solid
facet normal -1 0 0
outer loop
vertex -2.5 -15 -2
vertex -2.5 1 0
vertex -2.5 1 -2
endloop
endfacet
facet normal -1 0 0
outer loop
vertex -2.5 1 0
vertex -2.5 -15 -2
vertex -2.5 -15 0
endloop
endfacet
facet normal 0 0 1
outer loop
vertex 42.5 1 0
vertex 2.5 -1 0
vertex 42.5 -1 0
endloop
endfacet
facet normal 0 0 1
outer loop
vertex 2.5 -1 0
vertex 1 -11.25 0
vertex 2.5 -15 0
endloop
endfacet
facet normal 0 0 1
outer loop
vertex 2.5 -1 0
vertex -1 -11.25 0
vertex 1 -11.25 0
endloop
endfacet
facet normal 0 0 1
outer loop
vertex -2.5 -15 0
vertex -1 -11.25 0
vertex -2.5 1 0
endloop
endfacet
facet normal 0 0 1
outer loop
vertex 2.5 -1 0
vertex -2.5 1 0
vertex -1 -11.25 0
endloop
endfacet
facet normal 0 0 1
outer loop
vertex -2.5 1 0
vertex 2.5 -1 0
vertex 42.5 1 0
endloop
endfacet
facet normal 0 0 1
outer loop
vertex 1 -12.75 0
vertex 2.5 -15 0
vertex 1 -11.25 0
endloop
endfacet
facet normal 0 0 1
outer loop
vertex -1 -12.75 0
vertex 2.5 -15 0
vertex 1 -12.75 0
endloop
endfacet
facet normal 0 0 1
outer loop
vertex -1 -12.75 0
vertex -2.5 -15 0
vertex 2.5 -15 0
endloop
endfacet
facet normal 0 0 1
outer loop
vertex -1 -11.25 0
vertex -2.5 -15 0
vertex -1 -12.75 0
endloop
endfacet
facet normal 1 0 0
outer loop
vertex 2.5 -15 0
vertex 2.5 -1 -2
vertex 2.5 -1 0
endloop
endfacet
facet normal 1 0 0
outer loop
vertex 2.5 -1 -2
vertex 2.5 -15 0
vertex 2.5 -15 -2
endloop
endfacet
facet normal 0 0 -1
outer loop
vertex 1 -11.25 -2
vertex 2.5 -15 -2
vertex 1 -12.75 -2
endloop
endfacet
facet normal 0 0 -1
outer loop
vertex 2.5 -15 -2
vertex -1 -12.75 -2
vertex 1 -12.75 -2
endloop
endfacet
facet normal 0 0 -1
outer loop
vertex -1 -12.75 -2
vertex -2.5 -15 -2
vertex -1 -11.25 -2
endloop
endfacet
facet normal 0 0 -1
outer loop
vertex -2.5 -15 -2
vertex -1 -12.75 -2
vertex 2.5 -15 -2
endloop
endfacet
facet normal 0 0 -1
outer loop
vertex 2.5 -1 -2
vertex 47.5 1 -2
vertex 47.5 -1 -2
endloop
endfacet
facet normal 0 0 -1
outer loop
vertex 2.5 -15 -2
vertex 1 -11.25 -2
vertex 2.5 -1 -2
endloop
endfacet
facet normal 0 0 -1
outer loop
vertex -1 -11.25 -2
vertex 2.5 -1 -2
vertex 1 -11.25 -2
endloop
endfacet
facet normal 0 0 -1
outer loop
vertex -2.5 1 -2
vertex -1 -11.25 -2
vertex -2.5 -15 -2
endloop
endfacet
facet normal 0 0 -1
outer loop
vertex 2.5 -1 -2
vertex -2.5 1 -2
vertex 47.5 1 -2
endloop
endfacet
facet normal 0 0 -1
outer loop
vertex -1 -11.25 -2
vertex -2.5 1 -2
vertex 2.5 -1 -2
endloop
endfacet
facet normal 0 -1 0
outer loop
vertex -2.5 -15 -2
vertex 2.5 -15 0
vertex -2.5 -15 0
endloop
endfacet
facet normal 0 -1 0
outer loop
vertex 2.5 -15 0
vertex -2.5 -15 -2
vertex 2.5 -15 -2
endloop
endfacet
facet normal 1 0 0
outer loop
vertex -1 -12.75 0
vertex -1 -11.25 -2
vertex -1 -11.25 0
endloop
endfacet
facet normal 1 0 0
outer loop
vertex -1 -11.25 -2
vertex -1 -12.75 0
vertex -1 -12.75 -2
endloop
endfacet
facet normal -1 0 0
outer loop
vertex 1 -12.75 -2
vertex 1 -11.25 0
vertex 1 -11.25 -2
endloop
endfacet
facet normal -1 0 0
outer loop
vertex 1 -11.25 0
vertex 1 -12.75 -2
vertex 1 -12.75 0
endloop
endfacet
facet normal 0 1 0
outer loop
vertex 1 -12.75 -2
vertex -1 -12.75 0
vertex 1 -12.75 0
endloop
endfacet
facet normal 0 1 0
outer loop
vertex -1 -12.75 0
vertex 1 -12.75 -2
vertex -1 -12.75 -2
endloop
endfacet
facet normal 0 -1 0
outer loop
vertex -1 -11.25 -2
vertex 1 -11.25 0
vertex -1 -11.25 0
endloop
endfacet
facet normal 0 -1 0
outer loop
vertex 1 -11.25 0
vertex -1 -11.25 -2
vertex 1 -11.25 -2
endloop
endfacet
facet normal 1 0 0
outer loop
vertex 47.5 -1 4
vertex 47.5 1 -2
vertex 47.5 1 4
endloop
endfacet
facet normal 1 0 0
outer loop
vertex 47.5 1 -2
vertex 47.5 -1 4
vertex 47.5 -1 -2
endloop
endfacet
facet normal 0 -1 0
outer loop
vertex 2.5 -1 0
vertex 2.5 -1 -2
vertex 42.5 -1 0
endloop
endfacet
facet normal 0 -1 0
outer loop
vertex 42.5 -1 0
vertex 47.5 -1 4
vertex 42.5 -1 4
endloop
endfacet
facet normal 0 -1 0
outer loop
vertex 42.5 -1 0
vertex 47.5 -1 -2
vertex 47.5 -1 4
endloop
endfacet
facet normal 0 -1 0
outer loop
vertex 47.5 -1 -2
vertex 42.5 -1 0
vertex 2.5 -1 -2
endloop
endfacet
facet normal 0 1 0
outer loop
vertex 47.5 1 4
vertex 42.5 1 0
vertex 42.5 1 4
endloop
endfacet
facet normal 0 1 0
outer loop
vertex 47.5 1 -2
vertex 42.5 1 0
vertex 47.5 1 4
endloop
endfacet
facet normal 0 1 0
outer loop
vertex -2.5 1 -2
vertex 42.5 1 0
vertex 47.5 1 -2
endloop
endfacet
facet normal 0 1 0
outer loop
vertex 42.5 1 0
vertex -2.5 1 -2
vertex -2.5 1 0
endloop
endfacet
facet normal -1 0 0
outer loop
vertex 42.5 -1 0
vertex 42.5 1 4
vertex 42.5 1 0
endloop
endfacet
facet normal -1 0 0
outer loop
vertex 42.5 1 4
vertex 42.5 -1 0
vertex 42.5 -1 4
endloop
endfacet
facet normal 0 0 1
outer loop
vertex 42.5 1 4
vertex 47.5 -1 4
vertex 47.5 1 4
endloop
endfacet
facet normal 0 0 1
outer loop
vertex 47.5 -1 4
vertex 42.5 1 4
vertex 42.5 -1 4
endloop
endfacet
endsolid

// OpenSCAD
// a small slide lever to be attached to the ComMotion's MCU selection switch, so this switch can be actuated even when the ComMotion is sandwiched between an Arduino and another shield.
module make_commotion_switch(){
    height = 2;
    nub_height = height*2;
    nub_width = 5;
    handle_length = 50;
    grab_depth = 20-5;
    grab_width = 5;
    grab_hole = 2;
    beam_thickness = 2;
    
    difference(){
        
        // grab
        translate([0,-grab_depth/2,-height/2])
        cube([grab_width,grab_depth,height], center=true);
        
        color("red")
        translate([0,-12,0])
        cube([2,1.5,height*5], center=true);
        
    }//end diff
    
    translate([(handle_length-grab_width)/2,0,0]){
        
        // beam
        translate([0,0,-height/2])
        cube([handle_length,beam_thickness,height], center=true);
        
        // nub
        translate([(handle_length-nub_width)/2,0,nub_height/2])
        cube([nub_width,beam_thickness,nub_height], center=true);
        
    }
}

make_commotion_switch();
